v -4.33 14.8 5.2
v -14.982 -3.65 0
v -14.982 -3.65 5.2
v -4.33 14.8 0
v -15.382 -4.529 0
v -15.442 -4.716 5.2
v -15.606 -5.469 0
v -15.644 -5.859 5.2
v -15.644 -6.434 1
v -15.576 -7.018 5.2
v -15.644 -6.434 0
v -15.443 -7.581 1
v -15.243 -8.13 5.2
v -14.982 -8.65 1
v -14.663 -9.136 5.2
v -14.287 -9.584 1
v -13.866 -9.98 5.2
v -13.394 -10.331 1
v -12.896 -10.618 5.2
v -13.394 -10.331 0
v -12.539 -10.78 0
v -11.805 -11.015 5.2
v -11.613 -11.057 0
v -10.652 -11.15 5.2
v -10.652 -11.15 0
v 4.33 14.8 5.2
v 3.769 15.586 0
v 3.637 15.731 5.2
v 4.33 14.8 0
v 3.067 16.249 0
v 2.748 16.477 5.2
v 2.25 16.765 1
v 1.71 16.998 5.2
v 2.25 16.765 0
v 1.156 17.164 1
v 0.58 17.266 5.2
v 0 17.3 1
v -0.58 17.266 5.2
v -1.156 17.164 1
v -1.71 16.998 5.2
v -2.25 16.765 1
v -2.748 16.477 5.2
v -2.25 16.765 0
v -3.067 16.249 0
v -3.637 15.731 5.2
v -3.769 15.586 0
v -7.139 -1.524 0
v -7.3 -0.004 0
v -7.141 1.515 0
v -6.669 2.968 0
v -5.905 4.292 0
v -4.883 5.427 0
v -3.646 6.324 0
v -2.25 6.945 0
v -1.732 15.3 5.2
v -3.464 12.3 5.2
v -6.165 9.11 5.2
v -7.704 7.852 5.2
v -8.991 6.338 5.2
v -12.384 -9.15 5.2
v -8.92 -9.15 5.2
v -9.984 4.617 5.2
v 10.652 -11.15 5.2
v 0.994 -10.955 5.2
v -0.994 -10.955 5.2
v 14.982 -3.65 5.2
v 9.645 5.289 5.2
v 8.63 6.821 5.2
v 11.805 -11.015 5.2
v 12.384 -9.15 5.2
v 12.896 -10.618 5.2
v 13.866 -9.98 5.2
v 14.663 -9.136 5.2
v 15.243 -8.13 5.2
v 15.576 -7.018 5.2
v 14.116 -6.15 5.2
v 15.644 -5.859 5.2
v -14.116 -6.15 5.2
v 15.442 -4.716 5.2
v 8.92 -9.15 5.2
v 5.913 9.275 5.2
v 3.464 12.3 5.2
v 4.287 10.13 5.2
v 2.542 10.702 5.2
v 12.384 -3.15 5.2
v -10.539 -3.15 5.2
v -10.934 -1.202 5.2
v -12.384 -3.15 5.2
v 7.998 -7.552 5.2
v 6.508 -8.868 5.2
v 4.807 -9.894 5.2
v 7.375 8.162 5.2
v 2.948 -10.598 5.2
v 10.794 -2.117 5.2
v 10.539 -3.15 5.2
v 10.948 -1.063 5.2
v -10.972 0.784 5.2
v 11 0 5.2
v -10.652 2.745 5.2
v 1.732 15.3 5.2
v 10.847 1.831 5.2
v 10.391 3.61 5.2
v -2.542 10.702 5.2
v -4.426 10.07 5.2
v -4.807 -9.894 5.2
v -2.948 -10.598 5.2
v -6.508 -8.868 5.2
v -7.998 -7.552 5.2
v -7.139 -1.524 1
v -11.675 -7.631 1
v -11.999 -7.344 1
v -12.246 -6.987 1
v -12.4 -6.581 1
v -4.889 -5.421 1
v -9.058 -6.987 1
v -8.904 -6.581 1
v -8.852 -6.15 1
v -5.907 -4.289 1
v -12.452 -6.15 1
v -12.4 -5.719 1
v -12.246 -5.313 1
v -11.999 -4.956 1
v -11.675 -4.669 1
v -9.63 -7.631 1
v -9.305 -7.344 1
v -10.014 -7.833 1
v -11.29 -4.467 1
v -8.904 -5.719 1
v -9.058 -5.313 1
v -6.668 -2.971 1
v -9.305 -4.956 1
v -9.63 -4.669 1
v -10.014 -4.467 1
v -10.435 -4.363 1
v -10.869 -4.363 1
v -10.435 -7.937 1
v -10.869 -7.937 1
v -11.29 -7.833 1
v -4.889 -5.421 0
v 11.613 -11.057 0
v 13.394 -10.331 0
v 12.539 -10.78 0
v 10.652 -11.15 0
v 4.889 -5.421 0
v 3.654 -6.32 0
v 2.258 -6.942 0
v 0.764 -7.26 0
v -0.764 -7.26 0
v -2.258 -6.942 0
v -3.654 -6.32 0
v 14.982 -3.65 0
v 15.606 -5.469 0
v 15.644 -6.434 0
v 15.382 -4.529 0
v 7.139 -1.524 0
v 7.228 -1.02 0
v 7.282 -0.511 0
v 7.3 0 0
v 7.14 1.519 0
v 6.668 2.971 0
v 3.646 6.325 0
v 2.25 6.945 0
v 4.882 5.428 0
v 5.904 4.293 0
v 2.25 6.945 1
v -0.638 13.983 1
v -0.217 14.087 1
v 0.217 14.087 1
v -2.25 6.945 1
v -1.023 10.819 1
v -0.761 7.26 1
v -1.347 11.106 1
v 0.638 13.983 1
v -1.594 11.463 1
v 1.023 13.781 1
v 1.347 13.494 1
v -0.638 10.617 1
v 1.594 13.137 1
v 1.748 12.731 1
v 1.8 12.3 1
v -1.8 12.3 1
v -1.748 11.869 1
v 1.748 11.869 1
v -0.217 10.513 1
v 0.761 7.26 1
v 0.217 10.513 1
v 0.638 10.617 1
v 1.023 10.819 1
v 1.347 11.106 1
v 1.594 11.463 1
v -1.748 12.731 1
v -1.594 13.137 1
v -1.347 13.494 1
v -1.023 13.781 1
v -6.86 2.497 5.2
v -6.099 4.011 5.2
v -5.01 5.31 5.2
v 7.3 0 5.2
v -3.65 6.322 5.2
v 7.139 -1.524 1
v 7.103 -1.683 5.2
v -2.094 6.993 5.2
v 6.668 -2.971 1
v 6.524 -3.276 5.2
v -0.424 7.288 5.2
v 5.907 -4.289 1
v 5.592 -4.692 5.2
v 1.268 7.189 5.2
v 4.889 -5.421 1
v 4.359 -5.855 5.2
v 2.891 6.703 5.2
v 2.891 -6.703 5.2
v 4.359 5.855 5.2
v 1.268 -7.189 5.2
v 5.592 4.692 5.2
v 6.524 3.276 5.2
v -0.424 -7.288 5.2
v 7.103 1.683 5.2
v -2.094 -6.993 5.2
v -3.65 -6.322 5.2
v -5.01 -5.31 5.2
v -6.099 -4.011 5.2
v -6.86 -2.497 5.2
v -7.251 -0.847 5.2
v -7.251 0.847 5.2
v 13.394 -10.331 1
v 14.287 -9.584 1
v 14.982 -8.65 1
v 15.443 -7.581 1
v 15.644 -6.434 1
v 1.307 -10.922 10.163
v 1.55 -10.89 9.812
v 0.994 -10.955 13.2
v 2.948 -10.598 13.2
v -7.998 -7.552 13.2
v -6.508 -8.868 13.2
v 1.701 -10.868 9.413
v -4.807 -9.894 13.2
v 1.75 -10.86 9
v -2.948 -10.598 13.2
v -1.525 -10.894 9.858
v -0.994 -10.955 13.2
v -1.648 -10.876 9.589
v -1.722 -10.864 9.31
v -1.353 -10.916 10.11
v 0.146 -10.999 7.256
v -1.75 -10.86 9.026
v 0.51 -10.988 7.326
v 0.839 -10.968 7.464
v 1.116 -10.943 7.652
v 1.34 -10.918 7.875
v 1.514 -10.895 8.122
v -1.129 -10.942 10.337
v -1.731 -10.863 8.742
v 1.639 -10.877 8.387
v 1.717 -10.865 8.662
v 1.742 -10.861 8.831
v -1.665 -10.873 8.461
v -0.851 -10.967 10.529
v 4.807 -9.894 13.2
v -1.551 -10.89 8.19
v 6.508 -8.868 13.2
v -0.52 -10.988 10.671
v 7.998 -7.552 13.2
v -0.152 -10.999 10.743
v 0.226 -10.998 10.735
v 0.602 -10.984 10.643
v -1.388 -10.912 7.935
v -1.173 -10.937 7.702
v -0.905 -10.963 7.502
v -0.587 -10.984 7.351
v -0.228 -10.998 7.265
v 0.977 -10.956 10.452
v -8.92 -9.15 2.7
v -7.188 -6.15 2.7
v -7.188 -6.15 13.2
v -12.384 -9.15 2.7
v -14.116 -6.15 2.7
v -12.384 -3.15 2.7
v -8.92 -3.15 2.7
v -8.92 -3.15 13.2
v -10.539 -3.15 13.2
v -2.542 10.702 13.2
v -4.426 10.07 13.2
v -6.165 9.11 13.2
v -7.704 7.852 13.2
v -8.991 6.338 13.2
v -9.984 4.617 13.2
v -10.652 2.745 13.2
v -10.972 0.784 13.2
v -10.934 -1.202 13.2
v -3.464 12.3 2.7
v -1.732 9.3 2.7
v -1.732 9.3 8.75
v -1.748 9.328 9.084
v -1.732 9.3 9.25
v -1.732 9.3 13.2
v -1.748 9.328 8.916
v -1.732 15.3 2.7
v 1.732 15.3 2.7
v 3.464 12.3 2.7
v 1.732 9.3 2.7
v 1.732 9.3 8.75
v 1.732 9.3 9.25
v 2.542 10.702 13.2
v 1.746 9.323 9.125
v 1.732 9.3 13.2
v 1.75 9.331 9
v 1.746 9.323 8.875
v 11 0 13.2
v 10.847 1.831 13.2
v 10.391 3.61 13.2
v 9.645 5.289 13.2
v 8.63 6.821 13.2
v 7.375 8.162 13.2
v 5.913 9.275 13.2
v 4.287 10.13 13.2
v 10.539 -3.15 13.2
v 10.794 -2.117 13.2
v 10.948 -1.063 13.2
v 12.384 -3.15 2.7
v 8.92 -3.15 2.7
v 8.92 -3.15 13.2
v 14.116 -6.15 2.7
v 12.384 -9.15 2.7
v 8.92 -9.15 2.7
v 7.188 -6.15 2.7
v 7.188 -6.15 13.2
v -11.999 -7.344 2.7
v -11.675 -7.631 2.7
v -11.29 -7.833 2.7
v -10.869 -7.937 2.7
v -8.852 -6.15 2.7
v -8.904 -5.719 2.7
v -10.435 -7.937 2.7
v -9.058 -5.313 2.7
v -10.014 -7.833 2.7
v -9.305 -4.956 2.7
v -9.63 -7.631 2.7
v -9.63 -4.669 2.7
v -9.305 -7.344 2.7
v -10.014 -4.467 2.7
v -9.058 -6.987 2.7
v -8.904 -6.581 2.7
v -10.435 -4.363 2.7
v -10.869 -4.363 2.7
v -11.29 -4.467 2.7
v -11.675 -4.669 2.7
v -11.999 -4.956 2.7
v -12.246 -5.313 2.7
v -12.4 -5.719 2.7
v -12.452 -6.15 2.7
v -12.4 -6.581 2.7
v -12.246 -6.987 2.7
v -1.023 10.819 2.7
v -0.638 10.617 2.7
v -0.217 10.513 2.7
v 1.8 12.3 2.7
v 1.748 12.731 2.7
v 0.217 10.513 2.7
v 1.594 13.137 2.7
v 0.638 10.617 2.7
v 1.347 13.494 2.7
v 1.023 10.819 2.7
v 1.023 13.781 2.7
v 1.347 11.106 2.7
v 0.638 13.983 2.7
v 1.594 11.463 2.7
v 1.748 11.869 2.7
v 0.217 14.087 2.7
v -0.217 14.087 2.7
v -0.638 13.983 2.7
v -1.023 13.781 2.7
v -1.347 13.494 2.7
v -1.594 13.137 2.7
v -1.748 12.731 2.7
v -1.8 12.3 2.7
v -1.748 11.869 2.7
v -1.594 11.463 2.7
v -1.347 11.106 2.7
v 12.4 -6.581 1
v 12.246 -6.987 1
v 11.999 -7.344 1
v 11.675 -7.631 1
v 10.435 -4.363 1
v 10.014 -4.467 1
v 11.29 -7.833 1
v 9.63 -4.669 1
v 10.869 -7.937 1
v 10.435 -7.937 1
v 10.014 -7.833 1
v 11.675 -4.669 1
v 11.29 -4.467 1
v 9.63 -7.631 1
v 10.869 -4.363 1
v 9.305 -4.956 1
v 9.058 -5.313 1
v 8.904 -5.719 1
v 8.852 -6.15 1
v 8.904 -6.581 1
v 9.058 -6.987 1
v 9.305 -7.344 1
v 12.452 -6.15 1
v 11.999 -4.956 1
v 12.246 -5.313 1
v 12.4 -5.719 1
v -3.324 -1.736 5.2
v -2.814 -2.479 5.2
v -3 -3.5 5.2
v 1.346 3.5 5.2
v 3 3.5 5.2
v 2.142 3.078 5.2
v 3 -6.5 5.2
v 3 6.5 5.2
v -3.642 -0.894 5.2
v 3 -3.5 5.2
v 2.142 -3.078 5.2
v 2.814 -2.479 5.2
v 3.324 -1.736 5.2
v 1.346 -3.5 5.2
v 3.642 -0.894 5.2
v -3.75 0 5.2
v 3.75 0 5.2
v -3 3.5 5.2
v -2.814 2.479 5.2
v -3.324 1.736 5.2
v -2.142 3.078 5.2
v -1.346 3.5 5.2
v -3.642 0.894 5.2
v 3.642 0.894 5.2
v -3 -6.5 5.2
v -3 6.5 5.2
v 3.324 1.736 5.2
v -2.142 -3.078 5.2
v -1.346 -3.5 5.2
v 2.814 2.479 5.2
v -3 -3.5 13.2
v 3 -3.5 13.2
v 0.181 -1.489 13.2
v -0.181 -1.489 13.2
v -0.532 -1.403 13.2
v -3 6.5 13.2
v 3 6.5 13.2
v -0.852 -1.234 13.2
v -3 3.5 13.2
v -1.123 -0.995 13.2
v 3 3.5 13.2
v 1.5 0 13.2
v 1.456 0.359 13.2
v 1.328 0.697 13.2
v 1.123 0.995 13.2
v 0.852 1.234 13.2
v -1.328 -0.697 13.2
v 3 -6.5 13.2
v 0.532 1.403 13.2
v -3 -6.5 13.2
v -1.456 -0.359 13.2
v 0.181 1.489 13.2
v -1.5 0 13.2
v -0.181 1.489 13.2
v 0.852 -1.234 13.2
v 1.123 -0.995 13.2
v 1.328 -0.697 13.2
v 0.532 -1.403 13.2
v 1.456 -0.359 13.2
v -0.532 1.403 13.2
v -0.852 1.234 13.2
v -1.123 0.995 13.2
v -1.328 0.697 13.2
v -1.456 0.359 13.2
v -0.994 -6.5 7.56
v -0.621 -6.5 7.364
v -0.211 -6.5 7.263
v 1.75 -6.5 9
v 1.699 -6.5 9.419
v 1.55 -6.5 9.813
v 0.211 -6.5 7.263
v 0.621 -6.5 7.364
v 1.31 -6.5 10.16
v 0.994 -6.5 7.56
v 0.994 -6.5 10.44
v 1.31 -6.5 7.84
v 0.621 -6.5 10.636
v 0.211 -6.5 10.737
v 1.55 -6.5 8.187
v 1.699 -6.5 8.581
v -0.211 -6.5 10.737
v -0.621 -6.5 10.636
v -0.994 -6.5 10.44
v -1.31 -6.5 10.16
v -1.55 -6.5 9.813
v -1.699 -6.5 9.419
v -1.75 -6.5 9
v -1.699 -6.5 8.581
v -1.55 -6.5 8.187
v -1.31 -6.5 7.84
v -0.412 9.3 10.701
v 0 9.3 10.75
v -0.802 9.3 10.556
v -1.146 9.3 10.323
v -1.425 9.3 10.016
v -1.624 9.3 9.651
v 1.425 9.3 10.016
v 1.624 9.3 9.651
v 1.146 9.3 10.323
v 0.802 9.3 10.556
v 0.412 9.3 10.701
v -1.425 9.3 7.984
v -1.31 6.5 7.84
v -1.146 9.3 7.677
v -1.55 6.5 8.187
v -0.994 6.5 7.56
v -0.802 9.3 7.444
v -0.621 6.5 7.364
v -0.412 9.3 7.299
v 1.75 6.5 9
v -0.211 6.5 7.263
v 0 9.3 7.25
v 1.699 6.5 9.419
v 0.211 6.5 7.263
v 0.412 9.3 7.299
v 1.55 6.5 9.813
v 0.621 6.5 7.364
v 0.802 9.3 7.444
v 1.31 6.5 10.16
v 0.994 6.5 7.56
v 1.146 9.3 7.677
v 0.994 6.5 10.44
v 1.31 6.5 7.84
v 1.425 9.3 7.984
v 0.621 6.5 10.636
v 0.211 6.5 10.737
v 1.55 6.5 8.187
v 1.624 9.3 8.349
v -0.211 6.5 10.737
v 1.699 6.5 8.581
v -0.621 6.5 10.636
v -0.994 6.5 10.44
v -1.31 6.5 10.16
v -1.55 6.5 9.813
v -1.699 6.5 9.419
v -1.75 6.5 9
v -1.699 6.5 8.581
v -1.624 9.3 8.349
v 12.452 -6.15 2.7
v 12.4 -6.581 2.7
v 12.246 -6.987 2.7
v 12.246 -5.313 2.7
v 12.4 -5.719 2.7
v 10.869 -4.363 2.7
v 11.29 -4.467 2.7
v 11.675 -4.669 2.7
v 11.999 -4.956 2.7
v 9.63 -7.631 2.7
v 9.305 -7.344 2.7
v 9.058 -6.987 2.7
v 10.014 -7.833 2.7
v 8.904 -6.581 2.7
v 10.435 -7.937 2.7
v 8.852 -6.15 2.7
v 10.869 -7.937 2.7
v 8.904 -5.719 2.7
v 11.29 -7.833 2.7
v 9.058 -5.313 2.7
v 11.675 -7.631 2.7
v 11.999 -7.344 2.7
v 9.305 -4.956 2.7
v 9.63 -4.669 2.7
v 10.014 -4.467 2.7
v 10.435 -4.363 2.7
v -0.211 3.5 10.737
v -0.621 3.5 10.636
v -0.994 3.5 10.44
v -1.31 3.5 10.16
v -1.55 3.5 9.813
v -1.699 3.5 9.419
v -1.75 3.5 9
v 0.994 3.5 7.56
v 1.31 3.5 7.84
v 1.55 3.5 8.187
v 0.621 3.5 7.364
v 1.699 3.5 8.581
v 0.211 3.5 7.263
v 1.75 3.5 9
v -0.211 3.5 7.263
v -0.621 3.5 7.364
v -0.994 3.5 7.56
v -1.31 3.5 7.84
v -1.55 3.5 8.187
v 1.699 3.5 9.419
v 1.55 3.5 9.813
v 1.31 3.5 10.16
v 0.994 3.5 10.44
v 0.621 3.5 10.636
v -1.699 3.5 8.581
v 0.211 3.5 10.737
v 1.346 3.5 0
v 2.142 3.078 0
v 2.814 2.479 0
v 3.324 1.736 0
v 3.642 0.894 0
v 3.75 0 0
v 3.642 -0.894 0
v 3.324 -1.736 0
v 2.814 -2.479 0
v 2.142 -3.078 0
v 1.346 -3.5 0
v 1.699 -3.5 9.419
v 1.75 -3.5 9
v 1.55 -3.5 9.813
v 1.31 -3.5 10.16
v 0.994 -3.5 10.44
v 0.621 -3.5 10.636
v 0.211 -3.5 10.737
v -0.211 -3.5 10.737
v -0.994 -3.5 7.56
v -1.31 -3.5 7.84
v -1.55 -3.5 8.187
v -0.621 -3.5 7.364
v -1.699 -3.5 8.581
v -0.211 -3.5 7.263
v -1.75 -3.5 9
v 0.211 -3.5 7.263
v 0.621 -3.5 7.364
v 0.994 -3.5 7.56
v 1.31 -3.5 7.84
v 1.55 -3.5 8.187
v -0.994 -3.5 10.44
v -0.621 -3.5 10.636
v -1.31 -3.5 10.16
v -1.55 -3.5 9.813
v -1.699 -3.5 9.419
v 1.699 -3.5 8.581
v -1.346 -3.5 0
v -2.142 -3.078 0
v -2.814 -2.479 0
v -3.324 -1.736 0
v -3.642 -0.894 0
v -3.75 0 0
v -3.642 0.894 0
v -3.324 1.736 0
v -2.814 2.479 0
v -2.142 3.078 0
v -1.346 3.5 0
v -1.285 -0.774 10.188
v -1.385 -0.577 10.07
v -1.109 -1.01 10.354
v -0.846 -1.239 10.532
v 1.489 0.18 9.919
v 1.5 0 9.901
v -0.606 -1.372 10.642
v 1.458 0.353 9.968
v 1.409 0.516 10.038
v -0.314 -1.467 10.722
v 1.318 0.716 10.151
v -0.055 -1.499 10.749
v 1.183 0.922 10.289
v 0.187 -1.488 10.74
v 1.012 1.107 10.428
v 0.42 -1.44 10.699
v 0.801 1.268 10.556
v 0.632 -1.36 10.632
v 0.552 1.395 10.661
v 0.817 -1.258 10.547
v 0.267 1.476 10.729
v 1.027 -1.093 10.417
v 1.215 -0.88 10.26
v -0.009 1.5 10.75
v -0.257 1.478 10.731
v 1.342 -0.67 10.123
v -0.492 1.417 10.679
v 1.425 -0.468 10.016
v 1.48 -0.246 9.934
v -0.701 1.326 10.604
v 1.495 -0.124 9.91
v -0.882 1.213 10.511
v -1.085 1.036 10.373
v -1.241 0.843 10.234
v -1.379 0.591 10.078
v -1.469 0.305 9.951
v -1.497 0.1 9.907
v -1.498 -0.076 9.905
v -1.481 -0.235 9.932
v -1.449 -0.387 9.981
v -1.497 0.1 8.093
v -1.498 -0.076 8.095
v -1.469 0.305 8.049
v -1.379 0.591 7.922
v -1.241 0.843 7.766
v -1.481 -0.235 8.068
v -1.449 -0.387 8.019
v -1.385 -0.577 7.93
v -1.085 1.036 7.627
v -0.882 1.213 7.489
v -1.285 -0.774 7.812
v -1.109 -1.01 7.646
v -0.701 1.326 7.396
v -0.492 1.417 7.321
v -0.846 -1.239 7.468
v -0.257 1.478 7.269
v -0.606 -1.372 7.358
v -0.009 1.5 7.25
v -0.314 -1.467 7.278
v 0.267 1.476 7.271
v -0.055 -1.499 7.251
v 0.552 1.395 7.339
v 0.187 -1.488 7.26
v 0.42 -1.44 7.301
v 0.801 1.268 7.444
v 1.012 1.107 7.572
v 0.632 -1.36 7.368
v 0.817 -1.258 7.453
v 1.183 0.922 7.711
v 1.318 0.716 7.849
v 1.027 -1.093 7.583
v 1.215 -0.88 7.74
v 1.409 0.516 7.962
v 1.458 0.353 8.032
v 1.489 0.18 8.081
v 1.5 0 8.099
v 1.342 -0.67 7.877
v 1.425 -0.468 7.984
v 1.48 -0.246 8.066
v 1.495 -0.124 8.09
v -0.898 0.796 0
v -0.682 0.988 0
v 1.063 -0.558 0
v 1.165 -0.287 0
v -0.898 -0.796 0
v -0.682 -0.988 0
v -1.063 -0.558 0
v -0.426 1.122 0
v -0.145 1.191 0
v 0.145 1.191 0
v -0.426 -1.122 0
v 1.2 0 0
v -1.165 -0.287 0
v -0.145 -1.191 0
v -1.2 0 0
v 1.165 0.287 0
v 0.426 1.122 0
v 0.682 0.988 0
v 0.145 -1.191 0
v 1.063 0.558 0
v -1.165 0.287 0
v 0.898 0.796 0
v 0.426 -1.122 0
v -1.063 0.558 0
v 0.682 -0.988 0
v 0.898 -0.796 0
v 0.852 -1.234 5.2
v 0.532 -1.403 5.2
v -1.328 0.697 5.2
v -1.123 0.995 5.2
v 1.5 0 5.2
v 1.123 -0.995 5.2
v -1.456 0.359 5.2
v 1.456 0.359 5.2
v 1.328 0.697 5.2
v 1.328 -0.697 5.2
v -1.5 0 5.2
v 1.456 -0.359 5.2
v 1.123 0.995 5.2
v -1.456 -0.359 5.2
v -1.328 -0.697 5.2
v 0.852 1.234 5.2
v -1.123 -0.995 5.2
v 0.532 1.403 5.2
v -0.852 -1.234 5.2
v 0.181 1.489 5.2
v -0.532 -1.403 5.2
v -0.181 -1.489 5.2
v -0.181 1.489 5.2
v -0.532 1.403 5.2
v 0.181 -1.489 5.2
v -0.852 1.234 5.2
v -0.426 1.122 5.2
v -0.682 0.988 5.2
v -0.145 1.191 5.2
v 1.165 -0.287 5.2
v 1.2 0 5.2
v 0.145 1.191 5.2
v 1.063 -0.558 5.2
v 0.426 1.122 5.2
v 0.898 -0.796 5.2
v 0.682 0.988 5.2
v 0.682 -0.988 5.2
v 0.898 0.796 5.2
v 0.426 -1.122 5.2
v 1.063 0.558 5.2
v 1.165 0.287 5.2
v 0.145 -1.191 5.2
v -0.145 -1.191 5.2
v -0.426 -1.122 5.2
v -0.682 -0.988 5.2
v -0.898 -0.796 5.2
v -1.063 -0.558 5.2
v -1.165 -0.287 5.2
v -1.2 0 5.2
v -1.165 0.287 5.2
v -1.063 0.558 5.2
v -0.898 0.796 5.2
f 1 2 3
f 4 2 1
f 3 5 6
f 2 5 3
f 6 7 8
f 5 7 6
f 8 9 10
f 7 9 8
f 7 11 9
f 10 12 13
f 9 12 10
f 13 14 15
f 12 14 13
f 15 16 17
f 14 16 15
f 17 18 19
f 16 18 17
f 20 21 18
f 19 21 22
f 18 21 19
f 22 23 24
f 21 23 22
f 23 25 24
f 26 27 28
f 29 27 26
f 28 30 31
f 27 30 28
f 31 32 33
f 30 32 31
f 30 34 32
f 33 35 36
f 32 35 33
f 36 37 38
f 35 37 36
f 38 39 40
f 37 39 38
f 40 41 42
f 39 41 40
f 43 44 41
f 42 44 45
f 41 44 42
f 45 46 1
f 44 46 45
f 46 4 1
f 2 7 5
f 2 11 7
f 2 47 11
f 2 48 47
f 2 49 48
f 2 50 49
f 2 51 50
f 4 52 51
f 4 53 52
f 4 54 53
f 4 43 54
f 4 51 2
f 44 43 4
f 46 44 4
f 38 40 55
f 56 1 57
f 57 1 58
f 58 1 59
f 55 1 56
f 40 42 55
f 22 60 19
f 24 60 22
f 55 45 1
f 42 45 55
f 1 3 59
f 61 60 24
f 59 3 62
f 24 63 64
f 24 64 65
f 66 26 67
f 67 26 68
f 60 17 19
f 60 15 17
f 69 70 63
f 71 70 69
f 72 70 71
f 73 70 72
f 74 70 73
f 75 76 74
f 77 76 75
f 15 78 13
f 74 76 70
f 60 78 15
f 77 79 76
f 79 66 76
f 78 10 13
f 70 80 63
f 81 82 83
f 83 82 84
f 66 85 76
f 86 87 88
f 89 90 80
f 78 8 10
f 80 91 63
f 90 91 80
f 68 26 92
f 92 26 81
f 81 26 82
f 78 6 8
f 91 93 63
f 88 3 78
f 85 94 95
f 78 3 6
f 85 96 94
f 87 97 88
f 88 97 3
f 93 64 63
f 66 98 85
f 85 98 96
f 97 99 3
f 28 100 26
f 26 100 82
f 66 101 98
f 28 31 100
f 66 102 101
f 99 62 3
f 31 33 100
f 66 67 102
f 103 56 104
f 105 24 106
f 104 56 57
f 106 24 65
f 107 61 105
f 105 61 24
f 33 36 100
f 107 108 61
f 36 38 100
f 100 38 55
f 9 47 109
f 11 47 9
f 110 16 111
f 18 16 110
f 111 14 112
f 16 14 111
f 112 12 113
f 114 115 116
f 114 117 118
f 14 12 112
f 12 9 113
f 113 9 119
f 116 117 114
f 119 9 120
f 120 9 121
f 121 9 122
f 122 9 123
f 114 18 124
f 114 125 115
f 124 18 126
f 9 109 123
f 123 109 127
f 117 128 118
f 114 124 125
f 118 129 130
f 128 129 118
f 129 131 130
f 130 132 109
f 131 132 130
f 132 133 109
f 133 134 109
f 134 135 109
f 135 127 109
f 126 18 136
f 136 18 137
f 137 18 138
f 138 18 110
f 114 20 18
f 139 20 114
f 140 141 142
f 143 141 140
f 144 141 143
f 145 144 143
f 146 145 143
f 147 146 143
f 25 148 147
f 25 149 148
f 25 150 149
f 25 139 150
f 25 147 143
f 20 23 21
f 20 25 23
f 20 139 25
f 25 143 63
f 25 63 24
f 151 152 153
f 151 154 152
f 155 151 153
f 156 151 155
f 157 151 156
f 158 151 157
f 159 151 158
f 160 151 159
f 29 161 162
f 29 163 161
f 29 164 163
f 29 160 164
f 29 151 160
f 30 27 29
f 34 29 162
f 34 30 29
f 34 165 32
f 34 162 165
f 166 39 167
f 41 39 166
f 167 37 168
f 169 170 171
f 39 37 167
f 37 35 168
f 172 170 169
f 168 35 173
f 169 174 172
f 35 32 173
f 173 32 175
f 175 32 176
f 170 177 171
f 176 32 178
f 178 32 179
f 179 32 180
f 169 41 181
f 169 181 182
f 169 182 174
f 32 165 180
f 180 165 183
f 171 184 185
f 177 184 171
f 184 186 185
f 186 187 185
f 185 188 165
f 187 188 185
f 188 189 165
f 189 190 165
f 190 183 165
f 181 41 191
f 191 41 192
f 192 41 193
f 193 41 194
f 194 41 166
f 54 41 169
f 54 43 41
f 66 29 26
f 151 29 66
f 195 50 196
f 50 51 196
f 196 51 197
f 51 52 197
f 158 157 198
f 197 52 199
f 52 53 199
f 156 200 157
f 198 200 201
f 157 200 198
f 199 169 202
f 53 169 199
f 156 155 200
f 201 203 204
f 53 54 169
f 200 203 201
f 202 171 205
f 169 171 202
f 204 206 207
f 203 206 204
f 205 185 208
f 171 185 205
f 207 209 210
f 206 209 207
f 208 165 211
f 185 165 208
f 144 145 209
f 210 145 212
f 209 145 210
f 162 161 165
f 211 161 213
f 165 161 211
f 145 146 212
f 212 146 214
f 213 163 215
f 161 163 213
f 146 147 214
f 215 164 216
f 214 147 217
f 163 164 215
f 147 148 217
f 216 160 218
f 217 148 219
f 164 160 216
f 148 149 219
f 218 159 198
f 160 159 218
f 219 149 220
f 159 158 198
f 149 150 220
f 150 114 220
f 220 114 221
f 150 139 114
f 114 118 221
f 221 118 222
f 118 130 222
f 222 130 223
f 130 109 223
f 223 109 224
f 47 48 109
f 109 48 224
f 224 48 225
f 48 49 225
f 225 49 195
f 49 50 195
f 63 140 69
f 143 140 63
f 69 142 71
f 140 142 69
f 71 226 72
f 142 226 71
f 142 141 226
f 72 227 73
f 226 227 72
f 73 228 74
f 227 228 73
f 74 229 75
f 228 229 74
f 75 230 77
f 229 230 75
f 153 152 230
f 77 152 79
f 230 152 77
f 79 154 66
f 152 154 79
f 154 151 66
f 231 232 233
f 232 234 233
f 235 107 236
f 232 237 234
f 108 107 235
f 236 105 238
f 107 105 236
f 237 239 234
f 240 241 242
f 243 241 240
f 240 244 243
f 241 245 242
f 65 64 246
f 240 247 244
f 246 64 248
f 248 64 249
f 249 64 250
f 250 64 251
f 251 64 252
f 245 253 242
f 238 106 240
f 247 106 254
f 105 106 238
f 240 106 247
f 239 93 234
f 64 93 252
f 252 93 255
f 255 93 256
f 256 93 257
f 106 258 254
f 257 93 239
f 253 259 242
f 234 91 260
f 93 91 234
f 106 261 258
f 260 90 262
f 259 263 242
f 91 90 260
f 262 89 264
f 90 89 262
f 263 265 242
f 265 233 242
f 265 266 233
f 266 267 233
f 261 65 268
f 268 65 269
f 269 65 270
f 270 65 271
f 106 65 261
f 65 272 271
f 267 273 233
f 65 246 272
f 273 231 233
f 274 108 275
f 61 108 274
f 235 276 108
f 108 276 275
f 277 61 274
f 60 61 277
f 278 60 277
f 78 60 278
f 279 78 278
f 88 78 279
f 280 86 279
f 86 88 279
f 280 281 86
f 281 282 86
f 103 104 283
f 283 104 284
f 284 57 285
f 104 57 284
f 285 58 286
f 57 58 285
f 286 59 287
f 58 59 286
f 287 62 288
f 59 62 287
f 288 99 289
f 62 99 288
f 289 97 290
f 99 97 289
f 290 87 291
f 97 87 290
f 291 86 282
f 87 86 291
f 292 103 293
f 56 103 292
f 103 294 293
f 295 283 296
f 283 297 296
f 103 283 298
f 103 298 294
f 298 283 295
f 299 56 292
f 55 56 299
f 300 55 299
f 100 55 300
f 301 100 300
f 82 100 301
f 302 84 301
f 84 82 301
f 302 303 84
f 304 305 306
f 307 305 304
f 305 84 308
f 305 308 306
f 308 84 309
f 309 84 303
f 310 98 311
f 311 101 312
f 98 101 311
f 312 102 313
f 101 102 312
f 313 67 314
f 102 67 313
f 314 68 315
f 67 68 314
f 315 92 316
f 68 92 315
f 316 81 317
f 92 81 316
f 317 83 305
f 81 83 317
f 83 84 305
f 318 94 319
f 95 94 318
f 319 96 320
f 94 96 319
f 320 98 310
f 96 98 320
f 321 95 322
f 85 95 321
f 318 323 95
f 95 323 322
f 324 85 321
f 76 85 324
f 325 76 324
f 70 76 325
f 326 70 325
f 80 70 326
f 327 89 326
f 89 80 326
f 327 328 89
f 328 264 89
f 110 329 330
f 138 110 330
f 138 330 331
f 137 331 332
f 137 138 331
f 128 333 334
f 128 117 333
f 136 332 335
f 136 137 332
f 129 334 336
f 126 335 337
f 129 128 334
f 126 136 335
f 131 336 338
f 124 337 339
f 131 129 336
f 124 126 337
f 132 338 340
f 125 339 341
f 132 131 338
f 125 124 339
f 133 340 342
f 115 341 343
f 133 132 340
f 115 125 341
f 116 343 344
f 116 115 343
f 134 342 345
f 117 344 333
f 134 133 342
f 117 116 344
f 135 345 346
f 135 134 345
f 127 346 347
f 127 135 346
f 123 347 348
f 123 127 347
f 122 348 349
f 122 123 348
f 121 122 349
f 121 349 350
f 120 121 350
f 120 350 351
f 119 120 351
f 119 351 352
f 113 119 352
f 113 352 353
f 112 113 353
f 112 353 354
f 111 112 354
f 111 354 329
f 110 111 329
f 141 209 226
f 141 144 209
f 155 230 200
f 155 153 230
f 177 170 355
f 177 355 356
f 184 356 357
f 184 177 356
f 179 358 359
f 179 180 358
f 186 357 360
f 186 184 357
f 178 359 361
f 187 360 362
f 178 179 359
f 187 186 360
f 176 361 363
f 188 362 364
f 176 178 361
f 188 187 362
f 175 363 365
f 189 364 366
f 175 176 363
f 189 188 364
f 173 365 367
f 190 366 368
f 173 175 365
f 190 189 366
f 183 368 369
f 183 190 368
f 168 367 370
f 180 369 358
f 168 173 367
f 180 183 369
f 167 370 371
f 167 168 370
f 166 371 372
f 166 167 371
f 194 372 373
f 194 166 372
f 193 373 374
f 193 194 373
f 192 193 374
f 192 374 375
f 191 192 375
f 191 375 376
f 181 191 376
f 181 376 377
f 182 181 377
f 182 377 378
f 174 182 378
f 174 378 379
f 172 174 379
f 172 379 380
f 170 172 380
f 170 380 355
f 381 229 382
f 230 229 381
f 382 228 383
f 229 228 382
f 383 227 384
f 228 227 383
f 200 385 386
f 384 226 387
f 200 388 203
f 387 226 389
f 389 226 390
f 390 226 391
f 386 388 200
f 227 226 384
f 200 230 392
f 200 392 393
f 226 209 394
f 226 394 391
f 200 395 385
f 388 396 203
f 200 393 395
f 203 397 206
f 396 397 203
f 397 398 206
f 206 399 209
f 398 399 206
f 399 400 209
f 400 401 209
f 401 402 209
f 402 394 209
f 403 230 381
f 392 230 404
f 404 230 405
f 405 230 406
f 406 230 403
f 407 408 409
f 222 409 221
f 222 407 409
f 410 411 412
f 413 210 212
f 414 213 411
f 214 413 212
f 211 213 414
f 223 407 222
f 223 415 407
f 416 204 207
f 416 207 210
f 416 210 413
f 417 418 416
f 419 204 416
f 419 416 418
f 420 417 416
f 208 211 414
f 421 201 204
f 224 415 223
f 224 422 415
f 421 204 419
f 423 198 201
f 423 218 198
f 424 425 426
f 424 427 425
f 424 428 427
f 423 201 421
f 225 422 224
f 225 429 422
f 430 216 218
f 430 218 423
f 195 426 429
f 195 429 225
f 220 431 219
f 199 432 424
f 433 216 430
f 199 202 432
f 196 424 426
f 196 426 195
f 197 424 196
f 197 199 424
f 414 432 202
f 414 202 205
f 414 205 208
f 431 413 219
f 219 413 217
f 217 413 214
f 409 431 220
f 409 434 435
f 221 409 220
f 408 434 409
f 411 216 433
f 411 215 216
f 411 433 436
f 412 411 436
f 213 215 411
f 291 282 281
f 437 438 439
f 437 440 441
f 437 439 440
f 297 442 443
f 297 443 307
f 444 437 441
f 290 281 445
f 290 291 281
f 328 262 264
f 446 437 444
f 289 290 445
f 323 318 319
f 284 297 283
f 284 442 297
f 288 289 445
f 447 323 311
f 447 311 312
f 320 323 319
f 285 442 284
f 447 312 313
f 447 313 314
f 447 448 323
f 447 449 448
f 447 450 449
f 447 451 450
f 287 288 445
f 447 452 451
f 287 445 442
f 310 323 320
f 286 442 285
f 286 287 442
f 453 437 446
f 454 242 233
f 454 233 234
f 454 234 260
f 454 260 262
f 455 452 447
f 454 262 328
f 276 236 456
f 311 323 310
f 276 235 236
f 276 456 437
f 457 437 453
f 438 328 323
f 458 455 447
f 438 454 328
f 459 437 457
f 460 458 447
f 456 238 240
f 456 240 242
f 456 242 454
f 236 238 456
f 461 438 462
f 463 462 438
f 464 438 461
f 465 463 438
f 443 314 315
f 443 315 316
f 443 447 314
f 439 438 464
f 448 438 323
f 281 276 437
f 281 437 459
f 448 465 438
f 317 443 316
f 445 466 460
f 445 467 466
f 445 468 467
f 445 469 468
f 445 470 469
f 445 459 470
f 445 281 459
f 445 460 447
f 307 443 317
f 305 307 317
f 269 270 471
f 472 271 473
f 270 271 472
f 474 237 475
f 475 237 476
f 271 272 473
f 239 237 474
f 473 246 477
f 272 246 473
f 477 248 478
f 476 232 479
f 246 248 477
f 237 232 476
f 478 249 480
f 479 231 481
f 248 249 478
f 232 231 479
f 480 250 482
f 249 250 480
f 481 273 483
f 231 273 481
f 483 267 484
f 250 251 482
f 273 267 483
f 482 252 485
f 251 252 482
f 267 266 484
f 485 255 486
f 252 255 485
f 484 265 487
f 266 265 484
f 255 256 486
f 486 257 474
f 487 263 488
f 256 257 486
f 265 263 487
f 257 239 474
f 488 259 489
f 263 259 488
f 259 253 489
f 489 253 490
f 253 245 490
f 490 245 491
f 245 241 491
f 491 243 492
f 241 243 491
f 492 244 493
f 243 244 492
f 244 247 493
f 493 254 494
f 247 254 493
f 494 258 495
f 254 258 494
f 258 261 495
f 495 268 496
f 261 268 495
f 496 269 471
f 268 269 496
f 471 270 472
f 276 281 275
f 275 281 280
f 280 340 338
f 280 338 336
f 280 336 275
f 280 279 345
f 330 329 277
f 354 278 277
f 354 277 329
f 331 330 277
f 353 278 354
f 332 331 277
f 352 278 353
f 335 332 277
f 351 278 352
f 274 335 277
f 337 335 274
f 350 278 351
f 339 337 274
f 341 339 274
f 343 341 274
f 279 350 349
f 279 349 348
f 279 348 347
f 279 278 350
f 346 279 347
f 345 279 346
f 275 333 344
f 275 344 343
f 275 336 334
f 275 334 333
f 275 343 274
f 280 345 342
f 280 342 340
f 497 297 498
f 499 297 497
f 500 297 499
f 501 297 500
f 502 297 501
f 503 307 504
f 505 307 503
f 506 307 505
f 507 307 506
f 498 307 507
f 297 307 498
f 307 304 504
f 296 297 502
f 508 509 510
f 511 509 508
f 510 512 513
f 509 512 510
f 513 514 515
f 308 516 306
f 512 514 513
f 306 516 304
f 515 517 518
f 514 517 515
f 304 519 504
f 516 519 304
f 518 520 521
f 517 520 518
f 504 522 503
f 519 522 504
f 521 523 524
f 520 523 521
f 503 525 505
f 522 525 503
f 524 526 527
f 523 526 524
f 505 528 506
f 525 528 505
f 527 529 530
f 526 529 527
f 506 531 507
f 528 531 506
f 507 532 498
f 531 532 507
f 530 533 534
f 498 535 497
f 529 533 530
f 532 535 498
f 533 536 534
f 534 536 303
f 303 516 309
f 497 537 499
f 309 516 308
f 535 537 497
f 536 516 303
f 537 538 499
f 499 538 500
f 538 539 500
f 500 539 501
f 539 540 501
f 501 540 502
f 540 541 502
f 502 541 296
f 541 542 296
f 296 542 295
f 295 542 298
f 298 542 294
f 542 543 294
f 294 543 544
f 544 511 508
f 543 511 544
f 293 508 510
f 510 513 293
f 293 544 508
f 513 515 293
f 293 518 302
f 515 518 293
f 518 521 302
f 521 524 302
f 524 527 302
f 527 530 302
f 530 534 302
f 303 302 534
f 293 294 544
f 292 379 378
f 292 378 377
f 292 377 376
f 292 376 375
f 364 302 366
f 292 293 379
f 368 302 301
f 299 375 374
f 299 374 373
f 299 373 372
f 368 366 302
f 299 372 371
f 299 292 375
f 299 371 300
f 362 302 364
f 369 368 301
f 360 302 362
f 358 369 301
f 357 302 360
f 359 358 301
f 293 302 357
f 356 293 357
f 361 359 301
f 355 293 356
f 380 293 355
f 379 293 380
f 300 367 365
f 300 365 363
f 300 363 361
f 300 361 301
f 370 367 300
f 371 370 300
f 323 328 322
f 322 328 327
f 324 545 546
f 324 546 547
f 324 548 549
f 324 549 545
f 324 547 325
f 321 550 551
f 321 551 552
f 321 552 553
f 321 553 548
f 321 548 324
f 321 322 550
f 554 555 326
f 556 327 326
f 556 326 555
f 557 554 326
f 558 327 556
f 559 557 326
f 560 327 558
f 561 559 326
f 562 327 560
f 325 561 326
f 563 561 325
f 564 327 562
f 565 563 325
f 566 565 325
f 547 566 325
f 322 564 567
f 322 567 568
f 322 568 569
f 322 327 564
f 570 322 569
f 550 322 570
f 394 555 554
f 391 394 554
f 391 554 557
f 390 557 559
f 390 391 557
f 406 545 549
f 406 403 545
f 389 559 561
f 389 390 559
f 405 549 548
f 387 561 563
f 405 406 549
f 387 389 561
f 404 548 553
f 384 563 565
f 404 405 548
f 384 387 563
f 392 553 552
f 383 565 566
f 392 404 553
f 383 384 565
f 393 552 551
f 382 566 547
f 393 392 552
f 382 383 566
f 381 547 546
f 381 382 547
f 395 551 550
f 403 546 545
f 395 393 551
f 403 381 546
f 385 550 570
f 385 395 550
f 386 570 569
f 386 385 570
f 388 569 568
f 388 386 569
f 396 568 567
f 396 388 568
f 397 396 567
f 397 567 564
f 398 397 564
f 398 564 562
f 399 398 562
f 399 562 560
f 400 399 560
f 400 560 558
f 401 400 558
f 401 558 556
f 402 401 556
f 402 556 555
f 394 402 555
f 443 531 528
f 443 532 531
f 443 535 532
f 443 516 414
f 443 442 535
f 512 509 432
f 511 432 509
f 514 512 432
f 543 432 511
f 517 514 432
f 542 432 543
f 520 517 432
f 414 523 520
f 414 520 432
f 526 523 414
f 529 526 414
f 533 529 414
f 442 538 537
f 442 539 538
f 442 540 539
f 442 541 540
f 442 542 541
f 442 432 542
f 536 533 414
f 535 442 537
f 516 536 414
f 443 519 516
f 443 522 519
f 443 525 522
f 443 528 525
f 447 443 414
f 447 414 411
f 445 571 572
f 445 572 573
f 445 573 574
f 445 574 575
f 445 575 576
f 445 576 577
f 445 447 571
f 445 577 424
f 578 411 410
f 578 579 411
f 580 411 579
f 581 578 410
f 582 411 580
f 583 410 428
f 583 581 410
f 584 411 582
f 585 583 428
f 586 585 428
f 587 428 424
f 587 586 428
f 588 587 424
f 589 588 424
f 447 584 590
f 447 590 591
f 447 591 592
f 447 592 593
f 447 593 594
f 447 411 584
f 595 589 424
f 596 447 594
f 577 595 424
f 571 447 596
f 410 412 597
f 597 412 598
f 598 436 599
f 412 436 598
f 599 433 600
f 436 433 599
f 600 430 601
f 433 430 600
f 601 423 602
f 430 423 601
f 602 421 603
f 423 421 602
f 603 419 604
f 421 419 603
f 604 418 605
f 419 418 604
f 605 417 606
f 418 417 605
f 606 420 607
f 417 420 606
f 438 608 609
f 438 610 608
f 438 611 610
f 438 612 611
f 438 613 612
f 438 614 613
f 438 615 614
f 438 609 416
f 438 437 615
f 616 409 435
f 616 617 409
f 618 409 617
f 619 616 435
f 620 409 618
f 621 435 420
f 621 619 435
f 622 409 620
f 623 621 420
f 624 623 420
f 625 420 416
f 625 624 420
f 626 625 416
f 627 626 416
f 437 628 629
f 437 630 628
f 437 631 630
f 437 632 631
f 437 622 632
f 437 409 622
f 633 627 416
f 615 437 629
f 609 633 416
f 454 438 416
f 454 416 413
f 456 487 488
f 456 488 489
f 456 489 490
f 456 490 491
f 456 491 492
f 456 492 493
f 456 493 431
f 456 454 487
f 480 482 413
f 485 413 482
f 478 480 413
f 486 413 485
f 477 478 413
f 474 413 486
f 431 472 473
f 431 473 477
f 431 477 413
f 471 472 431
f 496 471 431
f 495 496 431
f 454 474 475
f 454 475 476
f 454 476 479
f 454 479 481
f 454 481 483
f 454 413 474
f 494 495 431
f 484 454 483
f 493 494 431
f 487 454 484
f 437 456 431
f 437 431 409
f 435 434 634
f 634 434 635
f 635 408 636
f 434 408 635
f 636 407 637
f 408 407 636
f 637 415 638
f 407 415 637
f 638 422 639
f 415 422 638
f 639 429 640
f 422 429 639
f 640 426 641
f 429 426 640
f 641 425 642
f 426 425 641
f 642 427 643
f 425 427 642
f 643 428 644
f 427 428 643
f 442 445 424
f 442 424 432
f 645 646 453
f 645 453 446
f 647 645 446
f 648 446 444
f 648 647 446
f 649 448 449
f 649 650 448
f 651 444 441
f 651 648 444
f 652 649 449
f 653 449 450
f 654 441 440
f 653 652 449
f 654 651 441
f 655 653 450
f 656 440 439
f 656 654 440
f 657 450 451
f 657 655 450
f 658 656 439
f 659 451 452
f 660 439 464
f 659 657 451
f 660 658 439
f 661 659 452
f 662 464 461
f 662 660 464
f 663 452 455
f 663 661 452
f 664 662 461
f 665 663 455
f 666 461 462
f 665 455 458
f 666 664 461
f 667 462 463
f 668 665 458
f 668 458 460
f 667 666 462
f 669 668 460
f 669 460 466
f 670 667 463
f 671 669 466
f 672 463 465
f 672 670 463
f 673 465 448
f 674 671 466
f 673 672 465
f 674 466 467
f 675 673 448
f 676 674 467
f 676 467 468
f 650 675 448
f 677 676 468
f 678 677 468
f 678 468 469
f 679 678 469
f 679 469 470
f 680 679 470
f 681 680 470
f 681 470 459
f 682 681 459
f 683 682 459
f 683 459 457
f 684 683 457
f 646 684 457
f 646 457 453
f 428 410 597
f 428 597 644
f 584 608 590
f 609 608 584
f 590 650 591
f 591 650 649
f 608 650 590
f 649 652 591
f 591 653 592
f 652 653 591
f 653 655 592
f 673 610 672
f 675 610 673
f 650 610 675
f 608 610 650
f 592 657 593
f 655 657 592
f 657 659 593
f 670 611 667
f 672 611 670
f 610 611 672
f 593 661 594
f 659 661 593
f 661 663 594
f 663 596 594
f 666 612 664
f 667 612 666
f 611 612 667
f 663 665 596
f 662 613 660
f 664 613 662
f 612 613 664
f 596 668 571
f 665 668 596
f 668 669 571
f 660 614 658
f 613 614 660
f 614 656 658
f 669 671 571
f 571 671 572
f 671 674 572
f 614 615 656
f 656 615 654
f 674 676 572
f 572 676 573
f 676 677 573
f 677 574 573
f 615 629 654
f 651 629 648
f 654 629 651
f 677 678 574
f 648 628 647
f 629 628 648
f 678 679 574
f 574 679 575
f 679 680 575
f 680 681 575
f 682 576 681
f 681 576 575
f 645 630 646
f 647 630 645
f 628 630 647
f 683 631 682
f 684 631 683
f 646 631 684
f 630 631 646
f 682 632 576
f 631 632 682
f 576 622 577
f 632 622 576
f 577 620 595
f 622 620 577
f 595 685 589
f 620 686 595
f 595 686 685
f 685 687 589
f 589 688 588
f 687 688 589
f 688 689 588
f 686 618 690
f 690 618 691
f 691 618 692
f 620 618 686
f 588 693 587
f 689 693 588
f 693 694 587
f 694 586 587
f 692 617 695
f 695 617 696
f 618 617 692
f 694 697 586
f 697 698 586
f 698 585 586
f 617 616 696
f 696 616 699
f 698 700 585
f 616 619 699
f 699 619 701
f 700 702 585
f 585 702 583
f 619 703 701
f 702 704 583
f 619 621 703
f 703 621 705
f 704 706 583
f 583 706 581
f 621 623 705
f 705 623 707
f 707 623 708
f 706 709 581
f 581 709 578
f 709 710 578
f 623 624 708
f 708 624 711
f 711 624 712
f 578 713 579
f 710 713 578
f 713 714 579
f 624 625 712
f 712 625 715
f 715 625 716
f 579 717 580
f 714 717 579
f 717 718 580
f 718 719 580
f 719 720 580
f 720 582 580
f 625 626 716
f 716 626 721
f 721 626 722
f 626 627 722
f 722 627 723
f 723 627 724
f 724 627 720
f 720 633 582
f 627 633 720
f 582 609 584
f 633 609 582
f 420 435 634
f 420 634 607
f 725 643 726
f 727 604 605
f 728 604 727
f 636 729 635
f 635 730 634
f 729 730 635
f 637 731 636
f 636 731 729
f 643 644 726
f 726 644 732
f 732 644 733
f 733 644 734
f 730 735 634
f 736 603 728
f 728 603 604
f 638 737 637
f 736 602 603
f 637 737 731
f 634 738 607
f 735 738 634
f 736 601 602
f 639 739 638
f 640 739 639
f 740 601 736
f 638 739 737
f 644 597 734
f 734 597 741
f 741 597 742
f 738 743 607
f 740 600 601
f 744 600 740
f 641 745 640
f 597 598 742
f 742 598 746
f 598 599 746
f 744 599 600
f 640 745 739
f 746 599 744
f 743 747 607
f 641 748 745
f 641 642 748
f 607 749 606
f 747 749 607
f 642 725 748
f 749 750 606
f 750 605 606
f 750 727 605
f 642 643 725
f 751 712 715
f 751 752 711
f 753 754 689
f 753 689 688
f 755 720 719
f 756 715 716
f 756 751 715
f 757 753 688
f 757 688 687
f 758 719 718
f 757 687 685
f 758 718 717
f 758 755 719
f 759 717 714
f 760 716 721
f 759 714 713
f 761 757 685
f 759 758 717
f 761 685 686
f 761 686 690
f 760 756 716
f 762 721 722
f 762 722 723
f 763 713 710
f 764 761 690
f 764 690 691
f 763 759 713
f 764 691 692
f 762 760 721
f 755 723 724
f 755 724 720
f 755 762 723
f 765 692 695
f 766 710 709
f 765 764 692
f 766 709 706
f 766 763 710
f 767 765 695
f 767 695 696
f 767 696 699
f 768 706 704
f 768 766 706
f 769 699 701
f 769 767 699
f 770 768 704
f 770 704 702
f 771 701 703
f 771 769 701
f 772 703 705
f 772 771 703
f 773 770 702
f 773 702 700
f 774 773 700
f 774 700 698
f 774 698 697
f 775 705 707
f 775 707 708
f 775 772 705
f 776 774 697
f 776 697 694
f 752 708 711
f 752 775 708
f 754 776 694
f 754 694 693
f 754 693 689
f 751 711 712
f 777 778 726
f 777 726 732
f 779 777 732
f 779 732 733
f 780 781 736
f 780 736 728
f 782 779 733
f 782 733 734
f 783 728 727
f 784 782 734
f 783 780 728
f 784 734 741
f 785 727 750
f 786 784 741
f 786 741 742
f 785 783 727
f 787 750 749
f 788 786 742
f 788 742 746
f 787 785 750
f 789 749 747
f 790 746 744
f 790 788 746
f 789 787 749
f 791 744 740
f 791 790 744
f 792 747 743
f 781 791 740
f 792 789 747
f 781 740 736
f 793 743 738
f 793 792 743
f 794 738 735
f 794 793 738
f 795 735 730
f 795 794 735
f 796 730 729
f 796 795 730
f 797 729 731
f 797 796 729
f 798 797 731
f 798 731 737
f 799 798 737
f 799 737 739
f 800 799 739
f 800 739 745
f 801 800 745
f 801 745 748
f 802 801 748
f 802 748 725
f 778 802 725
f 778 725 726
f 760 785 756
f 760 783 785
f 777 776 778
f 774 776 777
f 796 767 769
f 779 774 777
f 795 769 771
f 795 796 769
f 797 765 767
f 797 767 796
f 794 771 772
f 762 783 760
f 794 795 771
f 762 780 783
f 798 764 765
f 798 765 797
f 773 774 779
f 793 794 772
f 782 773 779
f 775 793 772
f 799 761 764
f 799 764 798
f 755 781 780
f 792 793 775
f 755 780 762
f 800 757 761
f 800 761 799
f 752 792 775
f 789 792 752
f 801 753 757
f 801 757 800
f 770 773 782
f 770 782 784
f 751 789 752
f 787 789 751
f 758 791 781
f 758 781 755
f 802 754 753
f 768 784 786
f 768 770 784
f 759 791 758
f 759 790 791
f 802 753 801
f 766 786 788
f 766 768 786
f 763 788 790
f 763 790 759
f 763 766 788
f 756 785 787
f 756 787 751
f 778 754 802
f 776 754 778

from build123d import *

# Parameters (mm, degrees)
SKETCH_R           = 1.8
PAD_DEPTH          = 5.2
SKETCH002_R        = 11
SKETCH002_R_2      = 1.5
PAD001_DEPTH       = 8
SKETCH003_R        = 7.3
POCKET001_DEPTH    = 5.2
POCKET_DEPTH       = 10.5
SKETCH005_R        = 1.75
POCKET002_DEPTH    = 28.451
SKETCH006_W        = 6
SKETCH006_H        = 3
POCKET003_DEPTH    = 8
SKETCH007_R        = 1.2
PAD002_DEPTH       = 5.2
SKETCH008_W        = 4.5
SKETCH008_H        = 15
POCKET004_DEPTH    = 1
POLARPATTERN_COUNT = 3


with BuildPart() as part:
    # Sketch → Pad (new body)
    with BuildSketch(Plane.XY):
        with BuildLine():
            Line((-14.982239, -3.65), (-4.330127, 14.8))
            ThreePointArc((4.330127, 14.8), (0, 17.3), (-4.330127, 14.8))
            Line((4.330127, 14.8), (14.982239, -3.65))
            ThreePointArc((10.652112, -11.15), (14.982239, -8.65), (14.982239, -3.65))
            Line((10.652112, -11.15), (-10.652112, -11.15))
            ThreePointArc((-14.982239, -3.65), (-14.982239, -8.65), (-10.652112, -11.15))
        make_face()
        with Locations((0, 12.3)):
            Circle(SKETCH_R, mode=Mode.SUBTRACT)
        with Locations((-10.652112, -6.15)):
            Circle(SKETCH_R, mode=Mode.SUBTRACT)
        with Locations((10.652112, -6.15)):
            Circle(SKETCH_R, mode=Mode.SUBTRACT)
    extrude(amount=PAD_DEPTH)

    # Sketch002 (on Face11 of Pad) → Pad001 (join)
    with BuildSketch(Plane.XY.offset(5.2)):
        Circle(SKETCH002_R)
        Circle(SKETCH002_R_2, mode=Mode.SUBTRACT)
    extrude(amount=PAD001_DEPTH)

    # Sketch003 (on Face4 of Pad001) → Pocket001 (cut)
    with BuildSketch(Plane(origin=(0, 0, 0), x_dir=(1, 0, 0), z_dir=(0, 0, -1))):
        Circle(SKETCH003_R)
    extrude(amount=-POCKET001_DEPTH, mode=Mode.SUBTRACT)

    # Sketch004 (on Face18 of Pocket001) → Pocket (cut)
    with BuildSketch(Plane.XY.offset(13.2)):
        Polygon((-7.188011, -6.15), (-8.920062, -3.15), (-12.384163, -3.15), (-14.116214, -6.15), (-12.384163, -9.15), (-8.920062, -9.15), align=None)
        Polygon((1.732051, 9.3), (3.464102, 12.3), (1.732051, 15.3), (-1.732051, 15.3), (-3.464102, 12.3), (-1.732051, 9.3), align=None)
        Polygon((12.384163, -9.15), (14.116214, -6.15), (12.384163, -3.15), (8.920062, -3.15), (7.188011, -6.15), (8.920062, -9.15), align=None)
    extrude(amount=-POCKET_DEPTH, mode=Mode.SUBTRACT)

    # Sketch005 (on Face6 of Pocket) → Pocket002 (cut, through all)
    with BuildSketch(Plane.XZ.offset(11.15)):
        with Locations((0, 9)):
            Circle(SKETCH005_R)
    extrude(amount=-POCKET002_DEPTH, mode=Mode.SUBTRACT)

    # Sketch006 (on Face36 of Pocket002) → Pocket003 (cut)
    with BuildSketch(Plane.XY.offset(13.2)):
        with Locations((0, 5)):
            Rectangle(SKETCH006_W, SKETCH006_H)
        with Locations((0, -5)):
            Rectangle(SKETCH006_W, SKETCH006_H)
    extrude(amount=-POCKET003_DEPTH, mode=Mode.SUBTRACT)

    # Sketch007 (on Face33 of Pocket003) → Pad002 (join)
    with BuildSketch(Plane(origin=(0, 0, 5.2), x_dir=(1, 0, 0), z_dir=(0, 0, -1))):
        with BuildLine():
            Line((-1.346291, 3.5), (1.346291, 3.5))
            ThreePointArc((1.346291, -3.5), (3.75, 0), (1.346291, 3.5))
            Line((1.346291, -3.5), (-1.346291, -3.5))
            ThreePointArc((-1.346291, 3.5), (-3.75, 0), (-1.346291, -3.5))
        make_face()
        Circle(SKETCH007_R, mode=Mode.SUBTRACT)
    extrude(amount=PAD002_DEPTH)

    # Sketch008 (on Face4 of Pad002) → Pocket004 (cut)
    with BuildSketch(Plane(origin=(0, 0, 0), x_dir=(1, 0, 0), z_dir=(0, 0, -1))):
        with Locations((0, -11.3)):
            Rectangle(SKETCH008_W, SKETCH008_H)
    pocket004 = extrude(amount=-POCKET004_DEPTH, mode=Mode.SUBTRACT)

    # PolarPattern: Pocket004 ×3 about axis
    polarpattern_axis = Axis((0, 0, 0), (0, 0, -1))
    for i in range(1, POLARPATTERN_COUNT):
        add(pocket004.rotate(polarpattern_axis, i * 360 / POLARPATTERN_COUNT), mode=Mode.SUBTRACT)


solid = part.part
